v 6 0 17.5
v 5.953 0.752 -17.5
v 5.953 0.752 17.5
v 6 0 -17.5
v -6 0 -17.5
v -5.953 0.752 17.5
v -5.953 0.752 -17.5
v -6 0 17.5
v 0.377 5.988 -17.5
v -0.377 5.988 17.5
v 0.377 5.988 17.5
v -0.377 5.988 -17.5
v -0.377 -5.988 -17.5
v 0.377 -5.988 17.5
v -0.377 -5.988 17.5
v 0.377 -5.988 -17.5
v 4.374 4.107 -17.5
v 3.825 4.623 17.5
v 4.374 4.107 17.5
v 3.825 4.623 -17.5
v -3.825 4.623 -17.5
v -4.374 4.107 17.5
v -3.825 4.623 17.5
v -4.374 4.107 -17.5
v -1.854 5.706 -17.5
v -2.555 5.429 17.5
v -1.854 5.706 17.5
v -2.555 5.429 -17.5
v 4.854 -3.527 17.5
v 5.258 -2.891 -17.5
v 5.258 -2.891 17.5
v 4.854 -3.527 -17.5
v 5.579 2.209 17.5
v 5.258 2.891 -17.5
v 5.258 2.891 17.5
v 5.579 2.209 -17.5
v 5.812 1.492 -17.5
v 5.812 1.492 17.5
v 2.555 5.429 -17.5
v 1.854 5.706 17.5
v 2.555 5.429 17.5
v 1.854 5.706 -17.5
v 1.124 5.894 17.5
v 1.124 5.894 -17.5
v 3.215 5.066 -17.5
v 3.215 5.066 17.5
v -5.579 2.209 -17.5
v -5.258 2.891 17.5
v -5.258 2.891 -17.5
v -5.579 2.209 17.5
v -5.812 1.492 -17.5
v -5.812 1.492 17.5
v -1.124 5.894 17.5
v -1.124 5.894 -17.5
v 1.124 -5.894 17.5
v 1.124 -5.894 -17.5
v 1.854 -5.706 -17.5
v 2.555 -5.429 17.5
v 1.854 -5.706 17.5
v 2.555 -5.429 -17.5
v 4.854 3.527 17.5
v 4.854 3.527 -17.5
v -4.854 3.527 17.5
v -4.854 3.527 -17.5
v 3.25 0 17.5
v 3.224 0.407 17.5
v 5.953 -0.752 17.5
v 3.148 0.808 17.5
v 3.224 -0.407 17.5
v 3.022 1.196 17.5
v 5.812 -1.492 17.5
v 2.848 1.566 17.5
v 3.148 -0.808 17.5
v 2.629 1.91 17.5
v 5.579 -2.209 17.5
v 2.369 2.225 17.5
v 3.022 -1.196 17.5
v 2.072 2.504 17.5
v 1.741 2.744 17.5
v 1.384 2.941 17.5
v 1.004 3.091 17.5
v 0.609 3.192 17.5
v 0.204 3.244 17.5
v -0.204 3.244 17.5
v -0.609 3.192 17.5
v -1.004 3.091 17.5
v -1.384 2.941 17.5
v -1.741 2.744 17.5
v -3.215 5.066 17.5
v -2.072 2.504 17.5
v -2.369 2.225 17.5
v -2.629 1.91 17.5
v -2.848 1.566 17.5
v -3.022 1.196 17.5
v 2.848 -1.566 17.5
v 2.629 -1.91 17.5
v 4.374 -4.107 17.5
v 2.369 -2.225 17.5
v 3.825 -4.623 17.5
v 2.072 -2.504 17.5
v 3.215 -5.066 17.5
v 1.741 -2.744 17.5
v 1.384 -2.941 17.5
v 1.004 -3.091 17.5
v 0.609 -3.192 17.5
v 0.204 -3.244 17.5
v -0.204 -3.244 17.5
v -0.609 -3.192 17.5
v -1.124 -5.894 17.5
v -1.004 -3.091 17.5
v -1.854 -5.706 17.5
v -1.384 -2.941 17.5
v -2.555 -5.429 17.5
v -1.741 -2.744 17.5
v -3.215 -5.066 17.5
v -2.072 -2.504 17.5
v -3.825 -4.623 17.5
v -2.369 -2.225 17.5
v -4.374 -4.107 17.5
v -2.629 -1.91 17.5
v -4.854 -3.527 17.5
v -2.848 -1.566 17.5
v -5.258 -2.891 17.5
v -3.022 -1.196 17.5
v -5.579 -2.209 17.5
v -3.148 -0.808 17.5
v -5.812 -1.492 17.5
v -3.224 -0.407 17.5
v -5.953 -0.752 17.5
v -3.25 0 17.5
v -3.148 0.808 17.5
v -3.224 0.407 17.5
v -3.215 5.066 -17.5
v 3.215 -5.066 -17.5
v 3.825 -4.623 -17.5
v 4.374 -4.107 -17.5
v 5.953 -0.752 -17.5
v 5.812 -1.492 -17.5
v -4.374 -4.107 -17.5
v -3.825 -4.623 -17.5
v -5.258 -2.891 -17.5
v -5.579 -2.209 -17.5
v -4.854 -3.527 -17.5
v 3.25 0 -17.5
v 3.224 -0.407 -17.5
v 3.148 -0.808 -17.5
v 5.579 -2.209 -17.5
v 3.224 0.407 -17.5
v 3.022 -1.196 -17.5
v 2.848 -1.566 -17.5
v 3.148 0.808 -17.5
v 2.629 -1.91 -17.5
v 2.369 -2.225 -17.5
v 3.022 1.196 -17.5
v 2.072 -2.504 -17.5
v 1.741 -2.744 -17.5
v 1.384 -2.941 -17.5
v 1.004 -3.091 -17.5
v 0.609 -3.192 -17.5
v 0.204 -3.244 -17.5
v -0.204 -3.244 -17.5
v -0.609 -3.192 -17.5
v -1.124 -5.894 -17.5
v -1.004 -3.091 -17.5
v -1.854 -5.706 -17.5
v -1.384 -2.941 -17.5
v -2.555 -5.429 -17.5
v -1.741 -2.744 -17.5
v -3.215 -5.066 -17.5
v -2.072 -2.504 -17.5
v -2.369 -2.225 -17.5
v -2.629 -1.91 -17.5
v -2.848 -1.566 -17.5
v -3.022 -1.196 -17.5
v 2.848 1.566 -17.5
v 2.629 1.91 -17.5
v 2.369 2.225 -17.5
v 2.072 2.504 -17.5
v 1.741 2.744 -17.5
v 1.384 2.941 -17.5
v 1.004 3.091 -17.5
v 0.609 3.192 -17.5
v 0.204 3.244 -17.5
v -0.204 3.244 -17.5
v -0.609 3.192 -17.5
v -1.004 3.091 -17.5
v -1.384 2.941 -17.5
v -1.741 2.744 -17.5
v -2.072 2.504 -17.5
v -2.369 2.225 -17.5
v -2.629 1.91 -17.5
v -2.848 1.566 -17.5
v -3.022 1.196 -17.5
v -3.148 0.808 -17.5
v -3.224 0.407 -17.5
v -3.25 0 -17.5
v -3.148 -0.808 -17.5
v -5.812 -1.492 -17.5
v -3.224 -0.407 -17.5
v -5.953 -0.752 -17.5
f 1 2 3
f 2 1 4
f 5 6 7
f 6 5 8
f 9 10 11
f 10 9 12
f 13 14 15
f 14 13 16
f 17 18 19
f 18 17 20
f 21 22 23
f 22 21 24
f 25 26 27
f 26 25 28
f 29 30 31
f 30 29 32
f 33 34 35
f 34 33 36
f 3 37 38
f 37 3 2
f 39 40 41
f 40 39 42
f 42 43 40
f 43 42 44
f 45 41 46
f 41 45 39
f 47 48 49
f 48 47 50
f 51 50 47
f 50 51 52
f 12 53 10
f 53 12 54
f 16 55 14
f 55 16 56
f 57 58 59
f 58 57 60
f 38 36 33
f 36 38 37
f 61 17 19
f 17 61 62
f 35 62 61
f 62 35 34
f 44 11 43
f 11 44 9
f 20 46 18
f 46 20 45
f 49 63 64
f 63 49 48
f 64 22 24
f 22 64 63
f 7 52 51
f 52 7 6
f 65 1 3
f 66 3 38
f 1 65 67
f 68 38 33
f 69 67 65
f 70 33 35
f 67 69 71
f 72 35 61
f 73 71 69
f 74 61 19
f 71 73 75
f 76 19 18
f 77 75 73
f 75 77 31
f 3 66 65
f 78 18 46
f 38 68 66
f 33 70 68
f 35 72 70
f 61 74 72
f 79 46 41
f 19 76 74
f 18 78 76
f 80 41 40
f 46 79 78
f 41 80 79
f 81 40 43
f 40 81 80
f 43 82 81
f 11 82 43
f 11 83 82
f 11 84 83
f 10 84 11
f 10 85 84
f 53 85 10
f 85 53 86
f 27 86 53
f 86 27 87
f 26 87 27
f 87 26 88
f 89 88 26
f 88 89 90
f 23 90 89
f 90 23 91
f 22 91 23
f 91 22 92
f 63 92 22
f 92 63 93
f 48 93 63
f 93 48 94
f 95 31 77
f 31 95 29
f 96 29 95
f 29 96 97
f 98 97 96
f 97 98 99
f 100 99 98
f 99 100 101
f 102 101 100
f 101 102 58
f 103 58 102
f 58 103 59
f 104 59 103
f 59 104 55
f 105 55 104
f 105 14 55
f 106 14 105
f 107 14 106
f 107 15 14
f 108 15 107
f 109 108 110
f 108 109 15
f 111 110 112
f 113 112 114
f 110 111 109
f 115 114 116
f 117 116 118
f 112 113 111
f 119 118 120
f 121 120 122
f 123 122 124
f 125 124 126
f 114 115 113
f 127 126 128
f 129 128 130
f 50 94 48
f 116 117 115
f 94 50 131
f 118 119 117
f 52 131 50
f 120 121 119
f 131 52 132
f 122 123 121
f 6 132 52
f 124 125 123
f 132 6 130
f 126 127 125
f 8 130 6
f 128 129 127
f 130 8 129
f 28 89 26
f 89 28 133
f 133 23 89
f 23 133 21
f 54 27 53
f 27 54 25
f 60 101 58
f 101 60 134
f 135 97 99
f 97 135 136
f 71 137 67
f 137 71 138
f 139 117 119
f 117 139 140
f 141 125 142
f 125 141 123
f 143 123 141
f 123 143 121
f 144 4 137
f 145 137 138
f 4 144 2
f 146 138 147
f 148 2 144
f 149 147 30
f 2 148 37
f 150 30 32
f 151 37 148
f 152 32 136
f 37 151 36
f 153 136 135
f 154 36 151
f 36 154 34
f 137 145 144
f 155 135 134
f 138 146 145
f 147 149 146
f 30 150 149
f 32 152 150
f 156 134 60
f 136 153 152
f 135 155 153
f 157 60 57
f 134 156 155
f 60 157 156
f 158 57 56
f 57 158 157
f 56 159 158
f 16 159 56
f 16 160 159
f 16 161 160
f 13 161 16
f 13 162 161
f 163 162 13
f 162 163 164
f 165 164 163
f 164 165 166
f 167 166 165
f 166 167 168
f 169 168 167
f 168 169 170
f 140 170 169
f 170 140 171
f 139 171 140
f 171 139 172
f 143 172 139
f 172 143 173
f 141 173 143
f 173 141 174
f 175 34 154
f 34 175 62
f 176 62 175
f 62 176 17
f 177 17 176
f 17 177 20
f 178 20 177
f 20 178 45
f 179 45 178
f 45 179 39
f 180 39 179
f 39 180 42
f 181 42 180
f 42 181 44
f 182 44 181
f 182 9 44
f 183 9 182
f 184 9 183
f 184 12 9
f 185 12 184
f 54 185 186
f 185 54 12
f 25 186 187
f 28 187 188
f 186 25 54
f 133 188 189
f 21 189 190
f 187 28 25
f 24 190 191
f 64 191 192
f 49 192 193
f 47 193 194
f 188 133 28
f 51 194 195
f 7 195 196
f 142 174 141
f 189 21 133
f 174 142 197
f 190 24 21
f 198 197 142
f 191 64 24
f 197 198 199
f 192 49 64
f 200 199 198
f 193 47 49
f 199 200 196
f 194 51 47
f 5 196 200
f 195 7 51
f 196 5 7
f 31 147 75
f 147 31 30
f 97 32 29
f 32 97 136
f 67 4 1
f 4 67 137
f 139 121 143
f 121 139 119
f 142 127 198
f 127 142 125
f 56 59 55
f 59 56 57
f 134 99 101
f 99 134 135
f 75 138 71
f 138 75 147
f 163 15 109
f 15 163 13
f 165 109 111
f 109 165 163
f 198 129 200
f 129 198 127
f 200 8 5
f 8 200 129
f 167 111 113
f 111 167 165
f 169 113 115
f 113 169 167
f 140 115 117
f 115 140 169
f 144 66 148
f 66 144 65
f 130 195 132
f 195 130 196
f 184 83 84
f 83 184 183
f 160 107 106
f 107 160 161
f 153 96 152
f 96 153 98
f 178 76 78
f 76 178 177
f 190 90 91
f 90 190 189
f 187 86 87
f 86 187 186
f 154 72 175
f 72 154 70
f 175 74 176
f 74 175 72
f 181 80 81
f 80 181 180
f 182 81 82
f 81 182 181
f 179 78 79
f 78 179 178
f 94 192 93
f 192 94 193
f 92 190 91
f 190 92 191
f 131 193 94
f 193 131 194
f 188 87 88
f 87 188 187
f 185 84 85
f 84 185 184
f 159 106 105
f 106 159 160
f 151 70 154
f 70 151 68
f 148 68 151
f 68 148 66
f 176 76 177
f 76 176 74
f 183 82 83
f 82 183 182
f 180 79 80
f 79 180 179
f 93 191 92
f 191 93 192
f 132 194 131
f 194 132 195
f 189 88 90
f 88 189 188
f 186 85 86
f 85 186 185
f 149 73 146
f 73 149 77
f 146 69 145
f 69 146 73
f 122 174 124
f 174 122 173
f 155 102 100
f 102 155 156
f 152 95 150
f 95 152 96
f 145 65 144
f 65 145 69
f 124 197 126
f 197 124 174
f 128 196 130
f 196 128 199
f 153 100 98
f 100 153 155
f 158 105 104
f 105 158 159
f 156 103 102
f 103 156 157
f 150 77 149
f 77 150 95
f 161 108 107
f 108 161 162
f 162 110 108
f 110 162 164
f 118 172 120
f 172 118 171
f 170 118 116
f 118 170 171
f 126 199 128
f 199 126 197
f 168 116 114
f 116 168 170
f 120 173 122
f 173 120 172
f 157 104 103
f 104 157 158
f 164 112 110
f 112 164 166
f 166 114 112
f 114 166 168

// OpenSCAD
$fn = 50;


difference() {
	union() {
		translate(v = [0, 0, -17.5000000000]) {
			cylinder(h = 35, r = 6.0000000000);
		}
	}
	union() {
		translate(v = [0, 0, -100.0000000000]) {
			cylinder(h = 200, r = 3.2500000000);
		}
	}
}
